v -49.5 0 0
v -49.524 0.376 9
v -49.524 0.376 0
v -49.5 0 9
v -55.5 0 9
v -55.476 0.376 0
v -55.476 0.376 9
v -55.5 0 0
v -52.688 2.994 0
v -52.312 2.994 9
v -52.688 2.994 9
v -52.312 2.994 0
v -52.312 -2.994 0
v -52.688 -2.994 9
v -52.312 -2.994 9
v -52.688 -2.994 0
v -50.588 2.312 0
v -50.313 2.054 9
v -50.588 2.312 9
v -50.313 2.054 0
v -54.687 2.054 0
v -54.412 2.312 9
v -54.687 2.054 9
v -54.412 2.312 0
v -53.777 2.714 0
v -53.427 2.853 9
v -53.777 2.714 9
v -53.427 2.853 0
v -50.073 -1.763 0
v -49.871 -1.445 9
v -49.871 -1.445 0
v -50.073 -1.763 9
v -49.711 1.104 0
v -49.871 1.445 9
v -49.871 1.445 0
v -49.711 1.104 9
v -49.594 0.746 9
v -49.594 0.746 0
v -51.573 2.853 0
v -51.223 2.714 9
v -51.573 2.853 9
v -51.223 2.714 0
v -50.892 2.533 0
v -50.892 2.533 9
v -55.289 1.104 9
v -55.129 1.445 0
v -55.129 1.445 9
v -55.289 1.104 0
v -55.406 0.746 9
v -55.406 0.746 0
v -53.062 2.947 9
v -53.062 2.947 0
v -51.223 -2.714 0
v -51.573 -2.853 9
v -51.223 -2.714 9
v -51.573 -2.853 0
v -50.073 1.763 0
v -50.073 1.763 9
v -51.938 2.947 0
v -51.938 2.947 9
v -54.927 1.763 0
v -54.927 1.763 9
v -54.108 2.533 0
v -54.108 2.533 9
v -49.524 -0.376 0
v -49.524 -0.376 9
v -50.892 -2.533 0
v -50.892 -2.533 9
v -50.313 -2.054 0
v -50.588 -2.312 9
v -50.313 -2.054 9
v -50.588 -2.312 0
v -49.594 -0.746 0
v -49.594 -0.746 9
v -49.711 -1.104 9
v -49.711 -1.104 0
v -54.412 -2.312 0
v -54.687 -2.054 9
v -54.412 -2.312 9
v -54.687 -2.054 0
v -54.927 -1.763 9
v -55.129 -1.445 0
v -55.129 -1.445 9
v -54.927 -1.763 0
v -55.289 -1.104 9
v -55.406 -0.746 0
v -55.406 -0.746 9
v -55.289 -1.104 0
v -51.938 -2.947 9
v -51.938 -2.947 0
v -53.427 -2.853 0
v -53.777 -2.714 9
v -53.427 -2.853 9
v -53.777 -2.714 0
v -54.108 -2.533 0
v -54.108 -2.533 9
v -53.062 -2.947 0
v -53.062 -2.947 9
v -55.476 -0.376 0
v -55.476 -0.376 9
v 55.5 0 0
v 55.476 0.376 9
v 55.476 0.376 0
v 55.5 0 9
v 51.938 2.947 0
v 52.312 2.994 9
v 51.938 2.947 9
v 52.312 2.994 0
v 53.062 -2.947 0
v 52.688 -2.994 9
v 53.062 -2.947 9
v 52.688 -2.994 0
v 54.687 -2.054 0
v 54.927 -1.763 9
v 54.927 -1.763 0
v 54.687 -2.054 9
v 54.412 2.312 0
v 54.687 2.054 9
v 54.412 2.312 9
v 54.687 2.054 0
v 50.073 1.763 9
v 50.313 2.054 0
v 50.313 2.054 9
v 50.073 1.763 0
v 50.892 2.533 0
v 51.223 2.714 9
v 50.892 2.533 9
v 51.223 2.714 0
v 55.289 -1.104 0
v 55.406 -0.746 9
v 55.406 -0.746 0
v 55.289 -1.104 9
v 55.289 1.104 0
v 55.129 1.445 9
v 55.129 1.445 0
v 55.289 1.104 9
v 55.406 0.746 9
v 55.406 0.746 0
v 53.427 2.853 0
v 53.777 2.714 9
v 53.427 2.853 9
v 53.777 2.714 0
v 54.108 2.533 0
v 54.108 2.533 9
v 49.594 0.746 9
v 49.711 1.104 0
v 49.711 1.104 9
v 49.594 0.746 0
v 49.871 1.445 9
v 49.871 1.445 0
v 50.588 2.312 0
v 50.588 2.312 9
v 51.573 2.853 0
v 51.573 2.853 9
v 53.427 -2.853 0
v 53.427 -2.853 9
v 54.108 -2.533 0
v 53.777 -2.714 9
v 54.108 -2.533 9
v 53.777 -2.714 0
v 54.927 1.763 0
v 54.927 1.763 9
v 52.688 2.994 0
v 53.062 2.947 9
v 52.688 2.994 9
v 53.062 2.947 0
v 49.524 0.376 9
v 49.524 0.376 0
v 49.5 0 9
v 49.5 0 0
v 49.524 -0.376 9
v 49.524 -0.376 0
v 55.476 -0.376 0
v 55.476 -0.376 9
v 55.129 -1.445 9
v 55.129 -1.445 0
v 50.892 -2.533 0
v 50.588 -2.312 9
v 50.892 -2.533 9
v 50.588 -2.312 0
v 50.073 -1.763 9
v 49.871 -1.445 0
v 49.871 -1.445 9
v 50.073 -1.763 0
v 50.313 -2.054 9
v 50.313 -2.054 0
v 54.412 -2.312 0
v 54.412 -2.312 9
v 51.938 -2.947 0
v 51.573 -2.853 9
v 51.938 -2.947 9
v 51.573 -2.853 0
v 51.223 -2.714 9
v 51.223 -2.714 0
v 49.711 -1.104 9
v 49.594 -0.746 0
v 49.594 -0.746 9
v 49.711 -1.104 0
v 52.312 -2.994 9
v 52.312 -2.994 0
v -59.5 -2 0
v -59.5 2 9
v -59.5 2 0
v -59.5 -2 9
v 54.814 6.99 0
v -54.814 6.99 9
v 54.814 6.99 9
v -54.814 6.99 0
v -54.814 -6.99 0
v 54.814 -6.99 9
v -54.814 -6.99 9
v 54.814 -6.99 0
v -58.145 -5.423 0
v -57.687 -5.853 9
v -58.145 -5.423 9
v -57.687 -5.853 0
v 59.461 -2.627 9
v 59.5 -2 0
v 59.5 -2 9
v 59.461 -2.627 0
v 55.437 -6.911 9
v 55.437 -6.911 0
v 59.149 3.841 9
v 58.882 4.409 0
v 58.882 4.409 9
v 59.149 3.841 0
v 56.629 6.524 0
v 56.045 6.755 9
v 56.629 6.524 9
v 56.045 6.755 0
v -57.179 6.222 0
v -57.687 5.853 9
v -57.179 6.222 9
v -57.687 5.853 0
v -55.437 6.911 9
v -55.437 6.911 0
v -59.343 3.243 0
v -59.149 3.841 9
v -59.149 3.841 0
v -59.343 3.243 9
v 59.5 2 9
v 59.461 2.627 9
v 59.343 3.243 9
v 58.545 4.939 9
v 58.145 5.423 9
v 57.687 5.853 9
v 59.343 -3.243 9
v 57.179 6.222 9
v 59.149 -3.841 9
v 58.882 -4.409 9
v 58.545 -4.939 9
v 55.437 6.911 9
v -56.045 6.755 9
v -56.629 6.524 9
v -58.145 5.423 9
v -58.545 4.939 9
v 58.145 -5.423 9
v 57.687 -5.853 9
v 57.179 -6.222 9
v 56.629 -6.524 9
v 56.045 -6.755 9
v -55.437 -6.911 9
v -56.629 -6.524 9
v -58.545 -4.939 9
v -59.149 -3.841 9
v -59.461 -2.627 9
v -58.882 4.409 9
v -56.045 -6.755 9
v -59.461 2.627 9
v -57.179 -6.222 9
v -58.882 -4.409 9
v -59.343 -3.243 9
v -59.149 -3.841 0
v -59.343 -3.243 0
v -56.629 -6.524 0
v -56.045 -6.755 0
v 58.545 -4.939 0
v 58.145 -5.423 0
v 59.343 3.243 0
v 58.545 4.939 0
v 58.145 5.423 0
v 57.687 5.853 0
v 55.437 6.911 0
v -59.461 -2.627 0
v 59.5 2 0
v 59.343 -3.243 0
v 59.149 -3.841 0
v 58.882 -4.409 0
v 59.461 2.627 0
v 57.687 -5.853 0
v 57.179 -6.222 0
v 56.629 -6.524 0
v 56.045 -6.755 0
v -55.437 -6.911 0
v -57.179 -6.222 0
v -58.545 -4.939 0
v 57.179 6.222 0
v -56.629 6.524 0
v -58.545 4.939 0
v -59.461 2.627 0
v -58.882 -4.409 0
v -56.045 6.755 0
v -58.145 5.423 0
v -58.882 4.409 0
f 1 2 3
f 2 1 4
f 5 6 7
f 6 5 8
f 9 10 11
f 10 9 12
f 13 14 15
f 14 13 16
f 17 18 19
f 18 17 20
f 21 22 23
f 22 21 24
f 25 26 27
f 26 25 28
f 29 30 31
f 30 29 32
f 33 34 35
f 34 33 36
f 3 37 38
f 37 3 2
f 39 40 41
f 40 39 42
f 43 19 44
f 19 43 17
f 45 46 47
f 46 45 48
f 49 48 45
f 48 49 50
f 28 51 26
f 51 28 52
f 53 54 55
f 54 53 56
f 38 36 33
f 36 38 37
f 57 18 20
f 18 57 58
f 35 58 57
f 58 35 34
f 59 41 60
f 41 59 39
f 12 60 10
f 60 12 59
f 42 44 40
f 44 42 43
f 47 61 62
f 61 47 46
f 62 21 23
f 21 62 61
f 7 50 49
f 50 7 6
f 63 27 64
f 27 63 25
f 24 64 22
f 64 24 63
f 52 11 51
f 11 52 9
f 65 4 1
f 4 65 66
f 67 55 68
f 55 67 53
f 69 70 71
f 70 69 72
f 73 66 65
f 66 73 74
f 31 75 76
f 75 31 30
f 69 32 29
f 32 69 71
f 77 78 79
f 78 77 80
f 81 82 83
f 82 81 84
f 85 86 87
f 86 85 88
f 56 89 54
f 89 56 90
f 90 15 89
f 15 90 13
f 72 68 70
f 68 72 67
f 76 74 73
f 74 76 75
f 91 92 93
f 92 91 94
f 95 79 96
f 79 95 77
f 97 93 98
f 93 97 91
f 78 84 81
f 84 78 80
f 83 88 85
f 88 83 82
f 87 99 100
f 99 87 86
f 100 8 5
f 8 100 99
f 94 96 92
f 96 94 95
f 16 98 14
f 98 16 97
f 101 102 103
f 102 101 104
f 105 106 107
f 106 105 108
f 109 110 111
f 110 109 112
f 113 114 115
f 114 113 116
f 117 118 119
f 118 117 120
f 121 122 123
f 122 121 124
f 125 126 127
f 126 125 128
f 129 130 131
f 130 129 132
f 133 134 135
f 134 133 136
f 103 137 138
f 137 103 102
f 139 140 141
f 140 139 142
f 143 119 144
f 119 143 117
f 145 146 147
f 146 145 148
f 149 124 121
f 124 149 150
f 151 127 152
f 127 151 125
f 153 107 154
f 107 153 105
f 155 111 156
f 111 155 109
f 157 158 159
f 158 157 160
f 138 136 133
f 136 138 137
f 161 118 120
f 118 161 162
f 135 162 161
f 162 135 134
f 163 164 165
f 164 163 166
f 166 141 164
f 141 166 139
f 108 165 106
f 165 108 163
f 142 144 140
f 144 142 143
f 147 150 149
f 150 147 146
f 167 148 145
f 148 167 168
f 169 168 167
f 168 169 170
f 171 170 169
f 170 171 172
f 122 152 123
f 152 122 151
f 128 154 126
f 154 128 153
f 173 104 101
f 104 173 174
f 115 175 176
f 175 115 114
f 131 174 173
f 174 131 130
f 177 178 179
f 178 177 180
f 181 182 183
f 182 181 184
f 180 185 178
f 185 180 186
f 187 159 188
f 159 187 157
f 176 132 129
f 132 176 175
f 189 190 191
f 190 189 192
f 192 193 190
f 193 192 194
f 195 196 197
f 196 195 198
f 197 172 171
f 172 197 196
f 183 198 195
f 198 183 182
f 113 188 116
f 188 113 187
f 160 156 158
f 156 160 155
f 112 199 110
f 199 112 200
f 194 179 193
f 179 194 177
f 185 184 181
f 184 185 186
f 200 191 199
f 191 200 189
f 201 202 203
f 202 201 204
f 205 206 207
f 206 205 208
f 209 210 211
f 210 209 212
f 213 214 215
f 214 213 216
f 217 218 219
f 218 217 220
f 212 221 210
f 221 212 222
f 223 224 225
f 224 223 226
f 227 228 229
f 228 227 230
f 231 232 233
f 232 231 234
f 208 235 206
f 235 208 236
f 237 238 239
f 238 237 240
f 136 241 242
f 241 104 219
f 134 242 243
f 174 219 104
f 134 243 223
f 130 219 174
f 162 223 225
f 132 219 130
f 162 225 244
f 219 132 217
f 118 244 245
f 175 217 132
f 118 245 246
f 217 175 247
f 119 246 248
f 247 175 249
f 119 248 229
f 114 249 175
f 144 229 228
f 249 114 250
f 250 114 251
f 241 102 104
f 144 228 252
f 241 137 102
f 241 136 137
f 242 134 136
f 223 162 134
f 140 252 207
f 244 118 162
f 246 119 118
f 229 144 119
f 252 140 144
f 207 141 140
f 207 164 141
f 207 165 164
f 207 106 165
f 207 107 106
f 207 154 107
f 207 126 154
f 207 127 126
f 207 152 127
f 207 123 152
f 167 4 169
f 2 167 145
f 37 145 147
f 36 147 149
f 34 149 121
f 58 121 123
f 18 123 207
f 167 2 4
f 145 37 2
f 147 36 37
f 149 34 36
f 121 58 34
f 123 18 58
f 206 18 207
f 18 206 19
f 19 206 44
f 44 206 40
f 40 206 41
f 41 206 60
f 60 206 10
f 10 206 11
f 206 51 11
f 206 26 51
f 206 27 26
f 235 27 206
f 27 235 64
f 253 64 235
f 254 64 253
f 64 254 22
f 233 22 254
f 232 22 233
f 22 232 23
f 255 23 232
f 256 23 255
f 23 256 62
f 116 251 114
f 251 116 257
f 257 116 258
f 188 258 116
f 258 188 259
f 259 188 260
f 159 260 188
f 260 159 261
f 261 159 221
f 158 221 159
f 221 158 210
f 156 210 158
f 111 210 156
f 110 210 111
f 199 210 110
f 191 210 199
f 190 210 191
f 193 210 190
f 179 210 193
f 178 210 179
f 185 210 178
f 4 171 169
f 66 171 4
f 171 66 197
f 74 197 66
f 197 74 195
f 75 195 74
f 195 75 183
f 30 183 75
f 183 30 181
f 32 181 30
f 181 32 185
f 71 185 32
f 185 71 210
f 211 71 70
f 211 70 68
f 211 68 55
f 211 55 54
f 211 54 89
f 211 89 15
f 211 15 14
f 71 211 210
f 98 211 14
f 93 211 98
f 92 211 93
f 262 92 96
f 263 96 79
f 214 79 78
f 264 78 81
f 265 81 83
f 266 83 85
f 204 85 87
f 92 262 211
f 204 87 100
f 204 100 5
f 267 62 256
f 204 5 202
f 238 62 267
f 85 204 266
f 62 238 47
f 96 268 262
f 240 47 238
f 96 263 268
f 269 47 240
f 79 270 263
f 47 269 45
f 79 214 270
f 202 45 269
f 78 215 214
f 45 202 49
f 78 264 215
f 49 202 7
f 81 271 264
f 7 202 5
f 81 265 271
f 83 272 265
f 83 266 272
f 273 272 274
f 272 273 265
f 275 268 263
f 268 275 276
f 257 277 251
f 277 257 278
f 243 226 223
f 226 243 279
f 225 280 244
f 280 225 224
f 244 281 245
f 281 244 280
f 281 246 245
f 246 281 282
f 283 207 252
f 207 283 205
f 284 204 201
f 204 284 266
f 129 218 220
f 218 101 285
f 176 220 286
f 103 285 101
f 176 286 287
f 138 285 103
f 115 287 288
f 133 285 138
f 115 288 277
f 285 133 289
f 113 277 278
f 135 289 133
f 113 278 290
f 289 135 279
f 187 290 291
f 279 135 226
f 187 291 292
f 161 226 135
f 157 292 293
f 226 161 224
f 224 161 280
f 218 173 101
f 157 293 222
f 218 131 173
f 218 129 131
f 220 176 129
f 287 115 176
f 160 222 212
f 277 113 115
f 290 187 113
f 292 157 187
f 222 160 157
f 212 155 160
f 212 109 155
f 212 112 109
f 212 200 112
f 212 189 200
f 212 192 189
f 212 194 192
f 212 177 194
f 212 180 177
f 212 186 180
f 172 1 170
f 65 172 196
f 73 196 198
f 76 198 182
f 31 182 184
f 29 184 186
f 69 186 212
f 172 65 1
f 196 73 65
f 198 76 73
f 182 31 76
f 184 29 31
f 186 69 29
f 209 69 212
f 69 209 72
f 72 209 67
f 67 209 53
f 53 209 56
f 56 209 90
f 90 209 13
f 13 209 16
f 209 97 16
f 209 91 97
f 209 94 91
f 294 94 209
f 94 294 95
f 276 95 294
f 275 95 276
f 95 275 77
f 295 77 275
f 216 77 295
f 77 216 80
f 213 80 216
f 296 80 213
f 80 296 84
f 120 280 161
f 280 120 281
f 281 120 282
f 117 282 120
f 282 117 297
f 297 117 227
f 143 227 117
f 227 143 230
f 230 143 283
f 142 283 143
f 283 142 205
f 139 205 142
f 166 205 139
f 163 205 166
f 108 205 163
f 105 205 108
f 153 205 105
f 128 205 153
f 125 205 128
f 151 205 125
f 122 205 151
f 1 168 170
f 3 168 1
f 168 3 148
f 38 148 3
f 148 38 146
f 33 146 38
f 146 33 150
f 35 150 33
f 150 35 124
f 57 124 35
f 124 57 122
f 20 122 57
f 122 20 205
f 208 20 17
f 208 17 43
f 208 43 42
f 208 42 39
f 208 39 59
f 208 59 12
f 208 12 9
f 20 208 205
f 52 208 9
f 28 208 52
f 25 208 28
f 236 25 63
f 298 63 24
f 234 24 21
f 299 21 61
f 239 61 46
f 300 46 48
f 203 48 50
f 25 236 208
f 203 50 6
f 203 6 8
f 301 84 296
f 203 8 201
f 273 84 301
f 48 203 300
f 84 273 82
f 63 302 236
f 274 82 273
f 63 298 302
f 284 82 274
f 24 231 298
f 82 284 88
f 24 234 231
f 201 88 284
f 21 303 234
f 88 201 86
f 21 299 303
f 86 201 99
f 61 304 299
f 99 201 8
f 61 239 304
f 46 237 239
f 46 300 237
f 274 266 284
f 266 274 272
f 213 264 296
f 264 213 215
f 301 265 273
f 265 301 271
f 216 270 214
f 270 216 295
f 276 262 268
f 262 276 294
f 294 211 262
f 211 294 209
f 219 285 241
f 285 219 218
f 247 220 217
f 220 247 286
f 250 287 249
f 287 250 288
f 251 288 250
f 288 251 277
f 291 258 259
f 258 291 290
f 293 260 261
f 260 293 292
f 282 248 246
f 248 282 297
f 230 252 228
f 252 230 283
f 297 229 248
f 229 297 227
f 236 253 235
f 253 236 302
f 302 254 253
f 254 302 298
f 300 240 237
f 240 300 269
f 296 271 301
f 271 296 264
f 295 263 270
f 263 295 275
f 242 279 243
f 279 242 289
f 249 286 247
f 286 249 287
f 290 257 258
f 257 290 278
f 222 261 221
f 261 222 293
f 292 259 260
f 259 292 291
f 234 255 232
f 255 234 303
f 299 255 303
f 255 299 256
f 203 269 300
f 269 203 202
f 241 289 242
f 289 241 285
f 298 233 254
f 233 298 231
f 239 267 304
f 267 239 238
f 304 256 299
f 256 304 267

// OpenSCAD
$fn = 50;


difference() {
	union() {
		hull() {
			translate(v = [-54.5000000000, 2.0000000000, 0]) {
				cylinder(h = 9, r = 5);
			}
			translate(v = [54.5000000000, 2.0000000000, 0]) {
				cylinder(h = 9, r = 5);
			}
			translate(v = [-54.5000000000, -2.0000000000, 0]) {
				cylinder(h = 9, r = 5);
			}
			translate(v = [54.5000000000, -2.0000000000, 0]) {
				cylinder(h = 9, r = 5);
			}
		}
	}
	union() {
		translate(v = [-52.5000000000, 0.0000000000, 0]) {
			cylinder(h = 9, r = 3.0000000000);
		}
		translate(v = [52.5000000000, 0.0000000000, 0]) {
			cylinder(h = 9, r = 3.0000000000);
		}
		translate(v = [-52.5000000000, 0.0000000000, 0]) {
			cylinder(h = 9, r = 1.5000000000);
		}
		translate(v = [52.5000000000, 0.0000000000, 0]) {
			cylinder(h = 9, r = 1.5000000000);
		}
		translate(v = [-52.5000000000, 0.0000000000, 0]) {
			cylinder(h = 9, r = 1.5000000000);
		}
		translate(v = [52.5000000000, 0.0000000000, 0]) {
			cylinder(h = 9, r = 1.5000000000);
		}
		translate(v = [-52.5000000000, 0.0000000000, 0]) {
			cylinder(h = 9, r = 1.5000000000);
		}
		translate(v = [52.5000000000, 0.0000000000, 0]) {
			cylinder(h = 9, r = 1.5000000000);
		}
	}
}
